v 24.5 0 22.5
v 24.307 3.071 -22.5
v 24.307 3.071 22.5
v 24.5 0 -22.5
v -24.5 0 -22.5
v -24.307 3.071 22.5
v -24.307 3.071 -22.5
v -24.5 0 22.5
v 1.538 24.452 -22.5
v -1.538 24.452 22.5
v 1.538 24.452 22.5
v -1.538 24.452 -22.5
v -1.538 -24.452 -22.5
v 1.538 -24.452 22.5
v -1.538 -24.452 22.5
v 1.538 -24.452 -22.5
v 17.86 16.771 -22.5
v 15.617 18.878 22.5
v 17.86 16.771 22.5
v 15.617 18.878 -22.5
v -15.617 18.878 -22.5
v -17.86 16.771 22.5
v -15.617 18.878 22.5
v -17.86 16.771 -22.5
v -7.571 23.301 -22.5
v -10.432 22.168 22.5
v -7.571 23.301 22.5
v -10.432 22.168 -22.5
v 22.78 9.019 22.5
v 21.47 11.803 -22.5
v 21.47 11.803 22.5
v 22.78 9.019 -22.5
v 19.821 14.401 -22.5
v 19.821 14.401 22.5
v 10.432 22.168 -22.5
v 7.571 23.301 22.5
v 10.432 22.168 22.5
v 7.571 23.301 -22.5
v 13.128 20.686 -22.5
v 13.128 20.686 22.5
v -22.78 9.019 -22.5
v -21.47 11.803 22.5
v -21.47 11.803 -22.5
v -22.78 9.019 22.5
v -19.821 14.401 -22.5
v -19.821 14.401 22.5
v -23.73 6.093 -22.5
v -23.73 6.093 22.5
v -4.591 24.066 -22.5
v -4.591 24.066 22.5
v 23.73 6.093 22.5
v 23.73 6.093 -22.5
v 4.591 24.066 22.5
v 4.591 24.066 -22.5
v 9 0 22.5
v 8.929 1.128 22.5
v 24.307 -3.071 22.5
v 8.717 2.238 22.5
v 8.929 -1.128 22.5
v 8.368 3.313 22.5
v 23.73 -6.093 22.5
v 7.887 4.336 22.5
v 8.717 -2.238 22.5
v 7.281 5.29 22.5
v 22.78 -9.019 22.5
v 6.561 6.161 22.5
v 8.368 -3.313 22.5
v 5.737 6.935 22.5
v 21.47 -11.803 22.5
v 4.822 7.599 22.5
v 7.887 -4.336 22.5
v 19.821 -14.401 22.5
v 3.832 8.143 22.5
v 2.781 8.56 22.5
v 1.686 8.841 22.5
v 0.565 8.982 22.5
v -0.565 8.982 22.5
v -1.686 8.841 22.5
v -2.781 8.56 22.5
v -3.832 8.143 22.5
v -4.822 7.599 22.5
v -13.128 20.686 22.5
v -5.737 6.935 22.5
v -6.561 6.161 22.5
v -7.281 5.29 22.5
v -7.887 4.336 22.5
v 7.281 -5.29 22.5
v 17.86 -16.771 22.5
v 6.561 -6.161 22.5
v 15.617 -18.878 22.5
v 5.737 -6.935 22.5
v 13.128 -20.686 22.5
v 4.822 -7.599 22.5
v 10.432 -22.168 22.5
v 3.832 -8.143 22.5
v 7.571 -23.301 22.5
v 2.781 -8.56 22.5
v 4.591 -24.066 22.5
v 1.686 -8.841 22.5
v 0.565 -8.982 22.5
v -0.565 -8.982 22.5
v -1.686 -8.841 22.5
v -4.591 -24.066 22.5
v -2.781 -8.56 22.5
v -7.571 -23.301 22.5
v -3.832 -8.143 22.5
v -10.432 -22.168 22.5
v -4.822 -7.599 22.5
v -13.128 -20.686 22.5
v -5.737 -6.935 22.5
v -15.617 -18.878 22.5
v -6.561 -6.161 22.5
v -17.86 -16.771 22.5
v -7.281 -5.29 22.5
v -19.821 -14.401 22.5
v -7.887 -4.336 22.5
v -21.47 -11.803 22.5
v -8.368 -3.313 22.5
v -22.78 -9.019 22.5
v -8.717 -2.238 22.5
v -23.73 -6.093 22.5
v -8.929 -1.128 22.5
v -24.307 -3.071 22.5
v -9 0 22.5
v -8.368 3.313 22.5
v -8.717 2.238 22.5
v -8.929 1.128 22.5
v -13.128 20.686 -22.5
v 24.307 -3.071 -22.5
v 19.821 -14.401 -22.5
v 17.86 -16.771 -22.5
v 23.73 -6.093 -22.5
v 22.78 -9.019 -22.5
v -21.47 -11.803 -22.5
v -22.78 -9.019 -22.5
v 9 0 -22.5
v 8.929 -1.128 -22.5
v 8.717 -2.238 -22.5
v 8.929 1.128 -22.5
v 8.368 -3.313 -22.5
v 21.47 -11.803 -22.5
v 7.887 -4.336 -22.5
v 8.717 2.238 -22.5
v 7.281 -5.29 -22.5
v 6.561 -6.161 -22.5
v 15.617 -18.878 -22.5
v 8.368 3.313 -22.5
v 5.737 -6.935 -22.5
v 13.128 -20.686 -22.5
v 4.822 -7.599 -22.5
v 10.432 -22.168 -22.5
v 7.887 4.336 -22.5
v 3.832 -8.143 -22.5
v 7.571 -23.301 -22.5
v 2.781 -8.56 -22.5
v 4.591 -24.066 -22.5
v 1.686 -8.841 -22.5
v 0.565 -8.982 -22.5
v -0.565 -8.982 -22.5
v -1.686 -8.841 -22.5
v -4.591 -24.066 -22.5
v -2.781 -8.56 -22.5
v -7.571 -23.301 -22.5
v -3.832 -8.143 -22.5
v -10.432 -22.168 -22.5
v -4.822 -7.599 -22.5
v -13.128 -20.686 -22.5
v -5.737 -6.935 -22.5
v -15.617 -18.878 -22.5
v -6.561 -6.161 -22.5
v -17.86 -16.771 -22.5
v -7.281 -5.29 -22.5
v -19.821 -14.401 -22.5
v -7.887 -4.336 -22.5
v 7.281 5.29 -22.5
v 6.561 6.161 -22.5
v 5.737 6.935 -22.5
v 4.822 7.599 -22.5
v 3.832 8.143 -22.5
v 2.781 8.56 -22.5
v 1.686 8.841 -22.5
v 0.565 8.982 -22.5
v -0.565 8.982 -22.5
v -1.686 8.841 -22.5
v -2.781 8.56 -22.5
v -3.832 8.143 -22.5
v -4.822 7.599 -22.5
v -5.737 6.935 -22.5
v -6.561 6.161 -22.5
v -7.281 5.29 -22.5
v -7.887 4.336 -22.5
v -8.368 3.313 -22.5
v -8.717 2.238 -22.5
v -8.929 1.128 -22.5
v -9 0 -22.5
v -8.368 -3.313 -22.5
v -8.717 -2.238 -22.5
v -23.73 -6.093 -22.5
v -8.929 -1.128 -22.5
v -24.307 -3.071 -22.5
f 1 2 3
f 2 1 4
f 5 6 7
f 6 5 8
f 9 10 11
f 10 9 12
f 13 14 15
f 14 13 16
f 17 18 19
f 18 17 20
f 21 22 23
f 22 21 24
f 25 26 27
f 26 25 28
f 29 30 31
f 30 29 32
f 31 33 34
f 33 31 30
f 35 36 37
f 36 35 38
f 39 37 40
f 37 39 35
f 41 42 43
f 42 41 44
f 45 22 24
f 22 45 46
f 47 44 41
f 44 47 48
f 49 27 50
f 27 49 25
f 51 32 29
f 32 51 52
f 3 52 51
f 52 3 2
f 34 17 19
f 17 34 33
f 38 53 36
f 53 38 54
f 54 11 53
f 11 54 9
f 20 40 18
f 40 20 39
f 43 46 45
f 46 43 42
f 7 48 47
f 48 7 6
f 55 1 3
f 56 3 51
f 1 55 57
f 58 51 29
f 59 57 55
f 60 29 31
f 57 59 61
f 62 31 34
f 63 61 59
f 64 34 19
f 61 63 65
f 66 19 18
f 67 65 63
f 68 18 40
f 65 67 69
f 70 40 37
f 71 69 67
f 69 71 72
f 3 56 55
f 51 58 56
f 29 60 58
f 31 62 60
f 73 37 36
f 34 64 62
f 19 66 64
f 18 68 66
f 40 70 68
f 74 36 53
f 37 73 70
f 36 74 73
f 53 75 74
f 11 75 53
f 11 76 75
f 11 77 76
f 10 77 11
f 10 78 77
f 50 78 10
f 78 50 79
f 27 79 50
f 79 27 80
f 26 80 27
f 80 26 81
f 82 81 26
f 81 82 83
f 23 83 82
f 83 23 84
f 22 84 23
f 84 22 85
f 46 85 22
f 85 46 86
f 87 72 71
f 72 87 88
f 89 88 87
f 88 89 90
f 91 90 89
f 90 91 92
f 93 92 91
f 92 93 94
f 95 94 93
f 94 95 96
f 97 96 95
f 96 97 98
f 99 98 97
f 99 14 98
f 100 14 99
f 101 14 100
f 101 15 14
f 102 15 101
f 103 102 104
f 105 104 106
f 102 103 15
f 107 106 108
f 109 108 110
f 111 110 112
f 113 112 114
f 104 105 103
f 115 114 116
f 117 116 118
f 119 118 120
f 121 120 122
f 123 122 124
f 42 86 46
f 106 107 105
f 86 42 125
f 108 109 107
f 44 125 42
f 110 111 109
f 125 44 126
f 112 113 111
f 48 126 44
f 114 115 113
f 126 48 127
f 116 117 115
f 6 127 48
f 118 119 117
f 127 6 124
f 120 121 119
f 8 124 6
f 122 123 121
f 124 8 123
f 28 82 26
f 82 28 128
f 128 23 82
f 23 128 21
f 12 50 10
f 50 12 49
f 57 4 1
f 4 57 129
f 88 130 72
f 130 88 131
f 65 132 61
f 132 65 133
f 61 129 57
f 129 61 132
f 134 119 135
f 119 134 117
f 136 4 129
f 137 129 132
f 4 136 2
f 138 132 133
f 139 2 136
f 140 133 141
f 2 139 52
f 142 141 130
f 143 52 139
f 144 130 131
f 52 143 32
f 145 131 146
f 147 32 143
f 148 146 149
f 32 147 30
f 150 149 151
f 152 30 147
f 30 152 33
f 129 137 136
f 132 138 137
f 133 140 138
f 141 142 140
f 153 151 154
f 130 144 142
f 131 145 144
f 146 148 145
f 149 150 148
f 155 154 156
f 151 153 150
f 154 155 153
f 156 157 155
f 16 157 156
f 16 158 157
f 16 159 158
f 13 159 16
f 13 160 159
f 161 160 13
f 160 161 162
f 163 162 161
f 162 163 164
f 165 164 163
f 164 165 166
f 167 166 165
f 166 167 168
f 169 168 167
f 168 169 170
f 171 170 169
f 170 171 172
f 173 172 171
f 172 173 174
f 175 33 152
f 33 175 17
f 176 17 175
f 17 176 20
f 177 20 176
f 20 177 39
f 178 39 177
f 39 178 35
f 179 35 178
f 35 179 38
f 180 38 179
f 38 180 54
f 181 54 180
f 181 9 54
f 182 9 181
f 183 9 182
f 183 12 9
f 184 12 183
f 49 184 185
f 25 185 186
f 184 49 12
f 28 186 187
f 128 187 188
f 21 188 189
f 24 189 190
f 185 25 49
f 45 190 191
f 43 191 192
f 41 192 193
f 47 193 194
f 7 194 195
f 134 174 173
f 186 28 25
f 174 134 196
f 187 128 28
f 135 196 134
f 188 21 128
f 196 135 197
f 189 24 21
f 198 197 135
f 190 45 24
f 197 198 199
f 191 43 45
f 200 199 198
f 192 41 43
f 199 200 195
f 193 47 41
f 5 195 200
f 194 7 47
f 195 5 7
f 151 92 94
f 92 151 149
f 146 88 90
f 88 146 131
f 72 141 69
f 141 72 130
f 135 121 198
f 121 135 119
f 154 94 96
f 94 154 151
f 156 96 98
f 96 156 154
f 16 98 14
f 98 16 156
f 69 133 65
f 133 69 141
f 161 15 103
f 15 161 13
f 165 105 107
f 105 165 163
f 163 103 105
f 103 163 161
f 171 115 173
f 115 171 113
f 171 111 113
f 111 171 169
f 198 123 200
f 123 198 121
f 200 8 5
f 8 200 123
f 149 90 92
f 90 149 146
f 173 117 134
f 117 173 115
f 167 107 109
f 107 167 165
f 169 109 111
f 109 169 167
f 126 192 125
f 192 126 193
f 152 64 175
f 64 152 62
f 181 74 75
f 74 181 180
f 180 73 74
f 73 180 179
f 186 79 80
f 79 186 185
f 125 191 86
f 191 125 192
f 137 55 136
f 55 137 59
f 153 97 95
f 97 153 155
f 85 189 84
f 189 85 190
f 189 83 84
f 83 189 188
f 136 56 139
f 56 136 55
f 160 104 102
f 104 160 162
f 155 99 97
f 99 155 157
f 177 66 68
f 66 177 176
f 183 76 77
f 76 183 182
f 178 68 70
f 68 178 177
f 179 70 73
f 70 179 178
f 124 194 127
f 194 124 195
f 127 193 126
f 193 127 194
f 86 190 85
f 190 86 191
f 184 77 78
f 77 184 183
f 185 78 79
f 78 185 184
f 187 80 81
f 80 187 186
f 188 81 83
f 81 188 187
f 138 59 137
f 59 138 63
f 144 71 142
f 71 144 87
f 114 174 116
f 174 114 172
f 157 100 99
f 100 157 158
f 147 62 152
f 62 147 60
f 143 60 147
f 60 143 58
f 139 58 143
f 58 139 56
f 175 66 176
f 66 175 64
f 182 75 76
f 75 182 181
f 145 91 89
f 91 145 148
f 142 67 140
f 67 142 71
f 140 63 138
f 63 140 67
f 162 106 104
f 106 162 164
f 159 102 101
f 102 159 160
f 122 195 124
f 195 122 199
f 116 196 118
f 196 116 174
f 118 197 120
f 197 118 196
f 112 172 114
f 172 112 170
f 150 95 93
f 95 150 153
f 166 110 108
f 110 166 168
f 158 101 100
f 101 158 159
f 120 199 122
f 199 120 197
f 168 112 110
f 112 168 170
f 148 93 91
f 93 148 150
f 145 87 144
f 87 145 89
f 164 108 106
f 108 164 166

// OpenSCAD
$fn = 50;


difference() {
	union() {
		translate(v = [0, 0, -22.5000000000]) {
			cylinder(h = 45, r = 24.5000000000);
		}
	}
	union() {
		translate(v = [0, 0, -100.0000000000]) {
			cylinder(h = 200, r = 9);
		}
	}
}
